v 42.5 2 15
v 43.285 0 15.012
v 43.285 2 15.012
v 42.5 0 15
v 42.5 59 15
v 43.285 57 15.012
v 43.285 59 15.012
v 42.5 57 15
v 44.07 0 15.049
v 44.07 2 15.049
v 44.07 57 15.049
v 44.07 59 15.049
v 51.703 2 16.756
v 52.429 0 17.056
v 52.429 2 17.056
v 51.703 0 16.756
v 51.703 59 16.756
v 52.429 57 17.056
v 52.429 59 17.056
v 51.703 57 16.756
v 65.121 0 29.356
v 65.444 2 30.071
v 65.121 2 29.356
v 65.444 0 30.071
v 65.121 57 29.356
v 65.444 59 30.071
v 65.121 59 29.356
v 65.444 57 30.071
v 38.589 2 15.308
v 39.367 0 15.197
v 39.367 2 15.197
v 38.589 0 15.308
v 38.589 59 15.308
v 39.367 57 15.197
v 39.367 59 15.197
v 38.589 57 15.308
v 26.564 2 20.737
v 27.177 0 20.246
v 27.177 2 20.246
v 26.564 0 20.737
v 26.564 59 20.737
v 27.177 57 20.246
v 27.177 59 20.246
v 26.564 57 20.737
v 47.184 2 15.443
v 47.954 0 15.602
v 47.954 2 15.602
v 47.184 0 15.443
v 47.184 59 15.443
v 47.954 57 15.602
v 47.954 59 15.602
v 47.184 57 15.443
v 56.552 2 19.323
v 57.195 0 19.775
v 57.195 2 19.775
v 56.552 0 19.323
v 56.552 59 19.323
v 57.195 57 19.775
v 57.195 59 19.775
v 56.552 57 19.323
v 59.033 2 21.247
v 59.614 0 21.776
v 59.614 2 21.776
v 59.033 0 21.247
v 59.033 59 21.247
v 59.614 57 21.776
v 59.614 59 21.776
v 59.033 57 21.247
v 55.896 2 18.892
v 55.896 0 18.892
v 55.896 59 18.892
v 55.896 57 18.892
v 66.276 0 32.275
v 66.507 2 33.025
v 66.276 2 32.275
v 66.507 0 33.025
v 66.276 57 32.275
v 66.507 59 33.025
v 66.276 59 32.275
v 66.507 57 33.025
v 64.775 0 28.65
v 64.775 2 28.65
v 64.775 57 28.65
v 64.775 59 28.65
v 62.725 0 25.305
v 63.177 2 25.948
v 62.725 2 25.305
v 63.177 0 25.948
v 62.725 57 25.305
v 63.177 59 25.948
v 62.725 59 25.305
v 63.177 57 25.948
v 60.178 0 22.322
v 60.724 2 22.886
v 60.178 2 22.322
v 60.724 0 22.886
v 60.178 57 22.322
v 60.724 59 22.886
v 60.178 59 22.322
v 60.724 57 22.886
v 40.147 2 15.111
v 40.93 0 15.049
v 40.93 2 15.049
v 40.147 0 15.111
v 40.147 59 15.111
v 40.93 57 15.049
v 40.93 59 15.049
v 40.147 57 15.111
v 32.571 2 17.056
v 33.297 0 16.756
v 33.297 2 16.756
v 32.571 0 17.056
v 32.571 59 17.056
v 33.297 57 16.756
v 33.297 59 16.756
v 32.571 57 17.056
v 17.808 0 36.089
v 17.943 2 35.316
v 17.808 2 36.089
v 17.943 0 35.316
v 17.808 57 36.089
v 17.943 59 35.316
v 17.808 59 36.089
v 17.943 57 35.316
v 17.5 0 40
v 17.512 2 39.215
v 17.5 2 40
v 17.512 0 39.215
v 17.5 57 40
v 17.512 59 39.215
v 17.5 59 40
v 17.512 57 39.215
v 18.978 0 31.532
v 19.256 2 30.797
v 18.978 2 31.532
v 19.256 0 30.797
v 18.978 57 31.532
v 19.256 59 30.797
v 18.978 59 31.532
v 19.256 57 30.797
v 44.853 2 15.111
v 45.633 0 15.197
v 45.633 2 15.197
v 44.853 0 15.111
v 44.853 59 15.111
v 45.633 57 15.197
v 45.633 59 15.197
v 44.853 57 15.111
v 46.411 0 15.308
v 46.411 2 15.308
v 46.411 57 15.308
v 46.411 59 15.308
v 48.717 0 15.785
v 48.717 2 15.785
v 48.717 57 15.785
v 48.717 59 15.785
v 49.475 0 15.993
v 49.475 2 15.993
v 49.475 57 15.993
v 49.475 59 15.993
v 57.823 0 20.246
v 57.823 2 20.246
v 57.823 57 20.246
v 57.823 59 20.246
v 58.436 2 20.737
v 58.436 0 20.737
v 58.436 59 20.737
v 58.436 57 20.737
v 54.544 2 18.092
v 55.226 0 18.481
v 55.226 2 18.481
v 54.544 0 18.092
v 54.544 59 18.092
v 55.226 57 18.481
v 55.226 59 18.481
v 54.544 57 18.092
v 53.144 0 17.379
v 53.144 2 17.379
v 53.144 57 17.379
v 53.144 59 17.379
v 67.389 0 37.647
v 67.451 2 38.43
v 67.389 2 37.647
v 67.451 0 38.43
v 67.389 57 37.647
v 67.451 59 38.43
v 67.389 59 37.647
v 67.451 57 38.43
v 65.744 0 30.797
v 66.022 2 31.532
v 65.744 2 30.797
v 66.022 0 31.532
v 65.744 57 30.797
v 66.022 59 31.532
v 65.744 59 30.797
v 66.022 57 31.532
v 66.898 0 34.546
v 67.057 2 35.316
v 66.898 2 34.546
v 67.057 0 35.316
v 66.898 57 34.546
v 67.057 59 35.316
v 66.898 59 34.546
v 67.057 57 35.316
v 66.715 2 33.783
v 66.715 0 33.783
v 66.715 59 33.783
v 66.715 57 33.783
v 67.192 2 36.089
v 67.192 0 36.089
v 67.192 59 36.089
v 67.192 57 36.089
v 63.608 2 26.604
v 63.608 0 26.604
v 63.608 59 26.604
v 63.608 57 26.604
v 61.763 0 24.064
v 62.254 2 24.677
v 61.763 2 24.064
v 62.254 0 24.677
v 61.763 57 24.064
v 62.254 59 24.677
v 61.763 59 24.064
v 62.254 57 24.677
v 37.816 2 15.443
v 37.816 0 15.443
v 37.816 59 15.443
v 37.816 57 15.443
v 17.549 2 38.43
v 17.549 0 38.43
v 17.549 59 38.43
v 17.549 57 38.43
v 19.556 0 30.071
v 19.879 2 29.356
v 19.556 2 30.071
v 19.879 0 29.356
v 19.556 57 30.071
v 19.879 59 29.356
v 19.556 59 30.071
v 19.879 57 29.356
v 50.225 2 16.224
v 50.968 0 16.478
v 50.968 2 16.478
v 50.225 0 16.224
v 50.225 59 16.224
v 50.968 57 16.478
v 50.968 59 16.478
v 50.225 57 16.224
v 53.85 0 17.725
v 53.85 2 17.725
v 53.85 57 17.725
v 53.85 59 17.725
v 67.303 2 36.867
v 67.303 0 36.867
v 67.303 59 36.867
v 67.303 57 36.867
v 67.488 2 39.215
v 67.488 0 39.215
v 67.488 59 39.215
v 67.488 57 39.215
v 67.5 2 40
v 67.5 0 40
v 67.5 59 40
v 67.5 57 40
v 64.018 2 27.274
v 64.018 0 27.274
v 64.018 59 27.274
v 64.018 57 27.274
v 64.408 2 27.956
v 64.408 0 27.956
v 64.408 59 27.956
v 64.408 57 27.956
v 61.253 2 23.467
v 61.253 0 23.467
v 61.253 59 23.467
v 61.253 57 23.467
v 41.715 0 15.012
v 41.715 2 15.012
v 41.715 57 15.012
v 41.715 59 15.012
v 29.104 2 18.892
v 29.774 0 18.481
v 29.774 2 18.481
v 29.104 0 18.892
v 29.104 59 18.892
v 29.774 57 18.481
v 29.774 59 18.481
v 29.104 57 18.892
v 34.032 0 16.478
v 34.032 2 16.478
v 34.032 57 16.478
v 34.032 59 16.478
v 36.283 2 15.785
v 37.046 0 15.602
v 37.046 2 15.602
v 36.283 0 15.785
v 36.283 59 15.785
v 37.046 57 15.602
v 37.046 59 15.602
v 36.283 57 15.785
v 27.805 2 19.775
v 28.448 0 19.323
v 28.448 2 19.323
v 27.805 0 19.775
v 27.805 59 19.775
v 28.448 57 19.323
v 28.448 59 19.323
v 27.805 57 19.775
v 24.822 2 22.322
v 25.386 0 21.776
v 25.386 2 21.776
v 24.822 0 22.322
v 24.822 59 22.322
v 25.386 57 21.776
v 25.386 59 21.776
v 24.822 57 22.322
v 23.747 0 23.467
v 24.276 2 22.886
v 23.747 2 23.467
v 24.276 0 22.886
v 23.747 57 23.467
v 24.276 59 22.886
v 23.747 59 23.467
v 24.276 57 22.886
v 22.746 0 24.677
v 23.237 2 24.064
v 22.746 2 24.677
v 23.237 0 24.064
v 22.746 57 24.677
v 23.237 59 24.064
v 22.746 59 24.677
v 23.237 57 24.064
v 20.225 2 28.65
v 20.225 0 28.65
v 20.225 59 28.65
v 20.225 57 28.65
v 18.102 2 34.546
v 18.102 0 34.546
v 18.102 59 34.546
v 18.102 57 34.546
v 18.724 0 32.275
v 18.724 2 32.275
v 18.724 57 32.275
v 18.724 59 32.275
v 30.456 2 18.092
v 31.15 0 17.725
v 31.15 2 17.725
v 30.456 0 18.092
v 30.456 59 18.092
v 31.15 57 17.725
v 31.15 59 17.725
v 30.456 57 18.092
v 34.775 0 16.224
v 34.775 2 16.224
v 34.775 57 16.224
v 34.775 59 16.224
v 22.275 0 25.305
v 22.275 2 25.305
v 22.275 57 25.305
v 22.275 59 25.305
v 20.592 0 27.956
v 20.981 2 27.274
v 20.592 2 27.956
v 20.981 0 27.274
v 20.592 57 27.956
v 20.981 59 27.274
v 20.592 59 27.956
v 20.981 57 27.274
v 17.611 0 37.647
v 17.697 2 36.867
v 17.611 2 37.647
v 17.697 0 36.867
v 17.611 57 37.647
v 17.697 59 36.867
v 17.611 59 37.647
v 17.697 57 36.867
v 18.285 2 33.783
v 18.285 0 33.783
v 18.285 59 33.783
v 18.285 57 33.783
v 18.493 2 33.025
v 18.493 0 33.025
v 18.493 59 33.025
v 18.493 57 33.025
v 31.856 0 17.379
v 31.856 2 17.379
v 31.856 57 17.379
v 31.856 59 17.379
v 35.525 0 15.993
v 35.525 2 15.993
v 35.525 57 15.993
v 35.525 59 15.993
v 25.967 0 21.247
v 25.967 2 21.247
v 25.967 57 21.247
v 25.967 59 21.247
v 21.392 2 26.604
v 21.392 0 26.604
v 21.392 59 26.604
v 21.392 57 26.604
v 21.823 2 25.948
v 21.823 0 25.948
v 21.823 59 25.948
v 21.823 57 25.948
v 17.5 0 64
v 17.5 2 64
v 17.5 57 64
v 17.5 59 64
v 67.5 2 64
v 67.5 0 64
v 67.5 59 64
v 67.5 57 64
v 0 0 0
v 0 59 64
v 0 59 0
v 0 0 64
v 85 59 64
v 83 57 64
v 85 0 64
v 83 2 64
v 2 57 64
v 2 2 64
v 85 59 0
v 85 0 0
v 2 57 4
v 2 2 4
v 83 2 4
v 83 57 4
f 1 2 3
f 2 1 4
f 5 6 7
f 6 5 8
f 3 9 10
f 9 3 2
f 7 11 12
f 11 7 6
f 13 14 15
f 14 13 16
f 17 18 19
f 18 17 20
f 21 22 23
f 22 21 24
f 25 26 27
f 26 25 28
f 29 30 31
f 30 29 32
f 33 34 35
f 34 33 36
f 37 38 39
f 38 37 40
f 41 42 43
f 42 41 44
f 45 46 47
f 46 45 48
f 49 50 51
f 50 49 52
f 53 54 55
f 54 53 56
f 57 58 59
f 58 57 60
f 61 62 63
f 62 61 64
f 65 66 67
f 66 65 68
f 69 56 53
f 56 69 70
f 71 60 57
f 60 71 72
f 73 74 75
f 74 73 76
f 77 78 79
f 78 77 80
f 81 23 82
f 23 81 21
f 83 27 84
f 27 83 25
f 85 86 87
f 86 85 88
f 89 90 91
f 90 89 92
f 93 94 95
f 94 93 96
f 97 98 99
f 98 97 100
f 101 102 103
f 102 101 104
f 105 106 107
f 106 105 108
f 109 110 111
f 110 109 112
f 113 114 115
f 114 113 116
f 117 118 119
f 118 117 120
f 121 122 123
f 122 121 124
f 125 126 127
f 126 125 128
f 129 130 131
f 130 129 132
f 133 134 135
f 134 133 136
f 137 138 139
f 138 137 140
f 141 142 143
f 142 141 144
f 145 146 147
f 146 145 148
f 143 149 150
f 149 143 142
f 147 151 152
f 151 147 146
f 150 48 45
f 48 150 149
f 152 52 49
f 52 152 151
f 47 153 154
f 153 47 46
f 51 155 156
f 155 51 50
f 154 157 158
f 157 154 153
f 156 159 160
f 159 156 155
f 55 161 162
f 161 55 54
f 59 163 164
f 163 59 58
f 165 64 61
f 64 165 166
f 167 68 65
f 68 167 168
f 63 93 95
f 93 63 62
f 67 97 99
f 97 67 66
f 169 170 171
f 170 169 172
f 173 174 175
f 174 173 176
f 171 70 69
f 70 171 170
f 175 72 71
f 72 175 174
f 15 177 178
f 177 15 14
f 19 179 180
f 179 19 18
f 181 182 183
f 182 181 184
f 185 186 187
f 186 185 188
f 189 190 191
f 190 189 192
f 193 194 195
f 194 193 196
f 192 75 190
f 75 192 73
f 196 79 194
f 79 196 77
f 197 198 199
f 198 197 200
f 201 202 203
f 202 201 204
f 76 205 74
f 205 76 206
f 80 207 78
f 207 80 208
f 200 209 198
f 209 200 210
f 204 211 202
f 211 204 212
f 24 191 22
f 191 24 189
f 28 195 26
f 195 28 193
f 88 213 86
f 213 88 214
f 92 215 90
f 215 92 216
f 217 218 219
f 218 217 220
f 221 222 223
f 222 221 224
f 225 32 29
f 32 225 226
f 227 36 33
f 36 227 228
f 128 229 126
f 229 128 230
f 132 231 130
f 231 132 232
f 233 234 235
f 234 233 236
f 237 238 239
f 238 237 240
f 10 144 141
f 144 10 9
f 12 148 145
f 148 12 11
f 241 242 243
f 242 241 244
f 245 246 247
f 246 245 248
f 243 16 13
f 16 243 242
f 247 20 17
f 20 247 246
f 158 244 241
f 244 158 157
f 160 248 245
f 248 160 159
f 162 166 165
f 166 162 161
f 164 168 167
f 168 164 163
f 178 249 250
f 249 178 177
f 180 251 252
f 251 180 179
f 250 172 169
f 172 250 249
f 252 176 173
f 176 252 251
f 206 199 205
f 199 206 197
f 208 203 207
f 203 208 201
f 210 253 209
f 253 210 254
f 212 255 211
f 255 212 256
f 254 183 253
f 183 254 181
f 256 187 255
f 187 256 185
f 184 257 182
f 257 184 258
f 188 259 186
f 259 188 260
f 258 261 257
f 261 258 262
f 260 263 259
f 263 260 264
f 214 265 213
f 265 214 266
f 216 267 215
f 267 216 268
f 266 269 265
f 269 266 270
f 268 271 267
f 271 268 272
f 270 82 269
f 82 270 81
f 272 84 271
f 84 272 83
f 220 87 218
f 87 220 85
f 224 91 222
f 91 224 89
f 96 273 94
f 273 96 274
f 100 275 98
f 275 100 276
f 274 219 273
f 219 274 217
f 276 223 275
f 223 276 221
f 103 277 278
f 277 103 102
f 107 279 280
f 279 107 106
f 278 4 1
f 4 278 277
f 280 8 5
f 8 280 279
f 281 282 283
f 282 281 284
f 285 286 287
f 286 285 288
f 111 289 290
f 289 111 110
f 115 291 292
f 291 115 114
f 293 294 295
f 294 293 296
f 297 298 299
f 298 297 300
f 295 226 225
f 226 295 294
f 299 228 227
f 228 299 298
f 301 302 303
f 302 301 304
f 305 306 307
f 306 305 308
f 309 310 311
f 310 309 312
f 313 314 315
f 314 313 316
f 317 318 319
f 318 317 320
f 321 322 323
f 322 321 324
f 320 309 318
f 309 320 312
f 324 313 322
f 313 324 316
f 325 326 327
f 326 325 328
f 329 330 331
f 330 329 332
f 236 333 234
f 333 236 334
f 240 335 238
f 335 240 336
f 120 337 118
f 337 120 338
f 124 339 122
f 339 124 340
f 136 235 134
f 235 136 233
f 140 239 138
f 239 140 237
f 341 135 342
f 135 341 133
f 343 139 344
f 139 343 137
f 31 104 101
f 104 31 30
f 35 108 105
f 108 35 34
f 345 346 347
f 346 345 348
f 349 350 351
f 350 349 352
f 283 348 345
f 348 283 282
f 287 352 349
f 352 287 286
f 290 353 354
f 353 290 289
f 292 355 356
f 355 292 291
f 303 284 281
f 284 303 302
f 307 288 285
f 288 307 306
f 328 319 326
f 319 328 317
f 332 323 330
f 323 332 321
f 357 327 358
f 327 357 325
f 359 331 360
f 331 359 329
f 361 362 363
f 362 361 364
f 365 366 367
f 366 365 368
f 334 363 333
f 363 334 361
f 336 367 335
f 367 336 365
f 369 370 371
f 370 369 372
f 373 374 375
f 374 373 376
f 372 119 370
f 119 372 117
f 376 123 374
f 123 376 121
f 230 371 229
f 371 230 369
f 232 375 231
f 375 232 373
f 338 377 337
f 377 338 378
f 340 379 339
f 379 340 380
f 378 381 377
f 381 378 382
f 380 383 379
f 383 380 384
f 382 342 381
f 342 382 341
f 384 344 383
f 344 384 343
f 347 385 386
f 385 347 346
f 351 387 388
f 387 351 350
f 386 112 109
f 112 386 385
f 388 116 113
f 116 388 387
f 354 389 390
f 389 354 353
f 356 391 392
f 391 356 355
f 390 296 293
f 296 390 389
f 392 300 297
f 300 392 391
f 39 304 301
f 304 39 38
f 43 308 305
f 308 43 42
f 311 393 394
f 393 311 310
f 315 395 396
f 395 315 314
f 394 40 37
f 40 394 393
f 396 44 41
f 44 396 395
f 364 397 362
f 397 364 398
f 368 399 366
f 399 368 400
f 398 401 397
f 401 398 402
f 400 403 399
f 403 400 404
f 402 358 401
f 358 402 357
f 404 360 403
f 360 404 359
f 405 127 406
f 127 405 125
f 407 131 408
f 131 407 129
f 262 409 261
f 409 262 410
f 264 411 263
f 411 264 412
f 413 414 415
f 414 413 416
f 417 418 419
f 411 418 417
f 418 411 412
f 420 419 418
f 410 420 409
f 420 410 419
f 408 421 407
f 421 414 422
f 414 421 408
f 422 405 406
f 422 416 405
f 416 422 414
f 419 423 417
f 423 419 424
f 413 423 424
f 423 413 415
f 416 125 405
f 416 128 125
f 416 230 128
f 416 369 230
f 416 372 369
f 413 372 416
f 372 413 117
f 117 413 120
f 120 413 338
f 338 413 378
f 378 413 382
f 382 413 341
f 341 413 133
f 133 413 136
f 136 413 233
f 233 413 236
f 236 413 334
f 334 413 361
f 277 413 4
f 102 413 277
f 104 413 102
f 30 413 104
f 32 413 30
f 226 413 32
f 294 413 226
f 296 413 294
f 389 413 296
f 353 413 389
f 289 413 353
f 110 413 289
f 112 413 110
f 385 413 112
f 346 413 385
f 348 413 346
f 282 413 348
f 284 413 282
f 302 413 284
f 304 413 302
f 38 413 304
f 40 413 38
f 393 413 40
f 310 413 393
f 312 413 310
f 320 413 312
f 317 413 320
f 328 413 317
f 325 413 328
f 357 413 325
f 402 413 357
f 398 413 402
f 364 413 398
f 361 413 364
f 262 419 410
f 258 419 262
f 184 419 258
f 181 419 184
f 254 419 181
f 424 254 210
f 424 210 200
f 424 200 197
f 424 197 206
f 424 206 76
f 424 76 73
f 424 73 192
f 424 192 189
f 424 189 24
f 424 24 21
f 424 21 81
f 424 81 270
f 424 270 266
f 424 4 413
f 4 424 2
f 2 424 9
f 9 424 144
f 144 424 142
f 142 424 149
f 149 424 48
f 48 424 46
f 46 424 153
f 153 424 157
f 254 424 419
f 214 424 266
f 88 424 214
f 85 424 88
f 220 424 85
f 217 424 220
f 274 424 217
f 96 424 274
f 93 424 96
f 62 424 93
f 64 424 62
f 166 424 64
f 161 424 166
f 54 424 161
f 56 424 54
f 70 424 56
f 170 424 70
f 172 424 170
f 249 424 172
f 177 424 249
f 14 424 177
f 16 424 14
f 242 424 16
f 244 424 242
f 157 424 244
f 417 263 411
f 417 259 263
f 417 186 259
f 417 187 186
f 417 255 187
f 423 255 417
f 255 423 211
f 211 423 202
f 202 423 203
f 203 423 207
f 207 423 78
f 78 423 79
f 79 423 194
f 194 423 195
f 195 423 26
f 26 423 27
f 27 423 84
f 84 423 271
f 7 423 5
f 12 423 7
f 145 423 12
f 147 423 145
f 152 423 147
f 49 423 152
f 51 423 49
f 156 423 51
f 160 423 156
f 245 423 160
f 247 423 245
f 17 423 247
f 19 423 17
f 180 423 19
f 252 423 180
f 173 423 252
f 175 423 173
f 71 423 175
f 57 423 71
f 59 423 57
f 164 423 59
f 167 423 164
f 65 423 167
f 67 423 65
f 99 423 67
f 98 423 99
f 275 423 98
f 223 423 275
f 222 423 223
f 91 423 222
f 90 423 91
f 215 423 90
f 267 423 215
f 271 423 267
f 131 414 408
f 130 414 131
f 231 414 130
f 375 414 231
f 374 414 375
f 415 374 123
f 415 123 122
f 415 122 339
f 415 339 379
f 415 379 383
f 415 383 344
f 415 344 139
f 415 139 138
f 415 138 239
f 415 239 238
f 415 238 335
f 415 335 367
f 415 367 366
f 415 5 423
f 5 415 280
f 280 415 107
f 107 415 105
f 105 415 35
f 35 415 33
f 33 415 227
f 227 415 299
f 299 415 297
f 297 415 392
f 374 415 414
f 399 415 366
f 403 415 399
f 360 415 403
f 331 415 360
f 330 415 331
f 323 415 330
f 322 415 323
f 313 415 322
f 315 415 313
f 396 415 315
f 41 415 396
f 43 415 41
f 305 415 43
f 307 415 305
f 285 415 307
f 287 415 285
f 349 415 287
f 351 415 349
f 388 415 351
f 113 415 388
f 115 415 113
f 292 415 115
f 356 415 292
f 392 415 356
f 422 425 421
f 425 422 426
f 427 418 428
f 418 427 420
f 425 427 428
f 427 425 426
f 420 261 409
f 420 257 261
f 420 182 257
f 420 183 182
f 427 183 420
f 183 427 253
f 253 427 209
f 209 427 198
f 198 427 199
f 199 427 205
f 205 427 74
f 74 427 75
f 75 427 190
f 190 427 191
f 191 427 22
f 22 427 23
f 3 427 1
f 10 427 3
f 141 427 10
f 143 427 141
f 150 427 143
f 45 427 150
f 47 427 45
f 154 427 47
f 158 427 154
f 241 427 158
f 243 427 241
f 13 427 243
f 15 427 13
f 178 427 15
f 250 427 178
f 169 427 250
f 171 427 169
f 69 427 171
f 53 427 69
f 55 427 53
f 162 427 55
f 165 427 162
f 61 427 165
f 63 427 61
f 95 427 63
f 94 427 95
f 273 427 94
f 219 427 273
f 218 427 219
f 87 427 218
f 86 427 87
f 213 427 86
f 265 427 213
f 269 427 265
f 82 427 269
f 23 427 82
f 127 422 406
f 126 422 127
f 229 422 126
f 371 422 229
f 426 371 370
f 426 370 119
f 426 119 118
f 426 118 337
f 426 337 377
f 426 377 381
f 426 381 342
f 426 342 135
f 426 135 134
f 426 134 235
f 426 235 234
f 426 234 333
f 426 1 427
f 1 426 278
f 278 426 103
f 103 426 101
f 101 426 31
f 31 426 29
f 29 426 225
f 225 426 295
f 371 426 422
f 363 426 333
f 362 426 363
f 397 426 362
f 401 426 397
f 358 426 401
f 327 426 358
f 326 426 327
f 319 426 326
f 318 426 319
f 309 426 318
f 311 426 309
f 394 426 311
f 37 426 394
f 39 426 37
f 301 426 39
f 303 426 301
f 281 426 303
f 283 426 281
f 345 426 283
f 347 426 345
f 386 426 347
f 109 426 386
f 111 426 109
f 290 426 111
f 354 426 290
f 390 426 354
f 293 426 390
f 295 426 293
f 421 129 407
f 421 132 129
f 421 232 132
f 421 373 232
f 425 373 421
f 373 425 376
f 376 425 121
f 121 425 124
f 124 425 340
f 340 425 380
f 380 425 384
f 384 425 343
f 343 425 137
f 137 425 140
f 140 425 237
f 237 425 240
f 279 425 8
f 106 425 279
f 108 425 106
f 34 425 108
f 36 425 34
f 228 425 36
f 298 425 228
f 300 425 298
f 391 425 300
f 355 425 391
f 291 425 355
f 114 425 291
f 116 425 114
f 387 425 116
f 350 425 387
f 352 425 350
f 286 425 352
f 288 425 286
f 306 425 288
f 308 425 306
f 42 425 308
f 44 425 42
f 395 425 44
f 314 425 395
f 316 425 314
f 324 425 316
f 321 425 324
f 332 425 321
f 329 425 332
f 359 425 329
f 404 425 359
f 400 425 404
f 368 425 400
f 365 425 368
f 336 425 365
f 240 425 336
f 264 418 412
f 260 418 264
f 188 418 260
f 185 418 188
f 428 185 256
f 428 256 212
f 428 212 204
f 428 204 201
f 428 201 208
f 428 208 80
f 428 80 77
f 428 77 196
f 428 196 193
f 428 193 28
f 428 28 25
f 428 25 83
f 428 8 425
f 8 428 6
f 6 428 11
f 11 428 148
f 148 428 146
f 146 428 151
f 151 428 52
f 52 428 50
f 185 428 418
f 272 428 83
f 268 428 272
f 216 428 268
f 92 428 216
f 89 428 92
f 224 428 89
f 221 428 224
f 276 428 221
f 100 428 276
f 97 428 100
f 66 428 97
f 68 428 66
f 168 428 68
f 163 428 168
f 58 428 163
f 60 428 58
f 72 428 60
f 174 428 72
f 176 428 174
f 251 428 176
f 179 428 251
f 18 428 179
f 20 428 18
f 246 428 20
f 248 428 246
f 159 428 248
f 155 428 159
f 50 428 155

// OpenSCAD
$fn=200;

THICK = 2;

CARD_L = 55;
CARD_W = 81;
CARD_STACK = 60;

BOX_W = CARD_W + (THICK * 2);
BOX_L = CARD_L + (THICK * 2);
BOX_H = CARD_STACK + (THICK * 2);

SMALL_DECK_STACK = 7;

difference() {
    cube(size = [BOX_W, BOX_L, BOX_H]);

    translate([
        THICK, 
        THICK, 
        BOX_H - CARD_STACK]) {
            
        cube(size = [
            CARD_W,
            CARD_L,
            CARD_STACK + 1]);
    }
    // for ( i = [10 : 2 : CARD_L - 10] ){
    //     translate([1, i, 60])
    //         cube(size = [BOX_W - 2, 1, 40]);
    // }
    
    gap();
    
}

module gap() {
    translate([
        BOX_W / 2,
        490,
        40]) {

        rotate([90, 90, 0]) {
            cylinder(
                h = 1000,
                r = 25);
        }
    }

    translate([
        (BOX_L / 2) - 12, 
        -1, 
        40]) {
            
        cube(size = [
            50,
            250,
            40]);
    }   
}
